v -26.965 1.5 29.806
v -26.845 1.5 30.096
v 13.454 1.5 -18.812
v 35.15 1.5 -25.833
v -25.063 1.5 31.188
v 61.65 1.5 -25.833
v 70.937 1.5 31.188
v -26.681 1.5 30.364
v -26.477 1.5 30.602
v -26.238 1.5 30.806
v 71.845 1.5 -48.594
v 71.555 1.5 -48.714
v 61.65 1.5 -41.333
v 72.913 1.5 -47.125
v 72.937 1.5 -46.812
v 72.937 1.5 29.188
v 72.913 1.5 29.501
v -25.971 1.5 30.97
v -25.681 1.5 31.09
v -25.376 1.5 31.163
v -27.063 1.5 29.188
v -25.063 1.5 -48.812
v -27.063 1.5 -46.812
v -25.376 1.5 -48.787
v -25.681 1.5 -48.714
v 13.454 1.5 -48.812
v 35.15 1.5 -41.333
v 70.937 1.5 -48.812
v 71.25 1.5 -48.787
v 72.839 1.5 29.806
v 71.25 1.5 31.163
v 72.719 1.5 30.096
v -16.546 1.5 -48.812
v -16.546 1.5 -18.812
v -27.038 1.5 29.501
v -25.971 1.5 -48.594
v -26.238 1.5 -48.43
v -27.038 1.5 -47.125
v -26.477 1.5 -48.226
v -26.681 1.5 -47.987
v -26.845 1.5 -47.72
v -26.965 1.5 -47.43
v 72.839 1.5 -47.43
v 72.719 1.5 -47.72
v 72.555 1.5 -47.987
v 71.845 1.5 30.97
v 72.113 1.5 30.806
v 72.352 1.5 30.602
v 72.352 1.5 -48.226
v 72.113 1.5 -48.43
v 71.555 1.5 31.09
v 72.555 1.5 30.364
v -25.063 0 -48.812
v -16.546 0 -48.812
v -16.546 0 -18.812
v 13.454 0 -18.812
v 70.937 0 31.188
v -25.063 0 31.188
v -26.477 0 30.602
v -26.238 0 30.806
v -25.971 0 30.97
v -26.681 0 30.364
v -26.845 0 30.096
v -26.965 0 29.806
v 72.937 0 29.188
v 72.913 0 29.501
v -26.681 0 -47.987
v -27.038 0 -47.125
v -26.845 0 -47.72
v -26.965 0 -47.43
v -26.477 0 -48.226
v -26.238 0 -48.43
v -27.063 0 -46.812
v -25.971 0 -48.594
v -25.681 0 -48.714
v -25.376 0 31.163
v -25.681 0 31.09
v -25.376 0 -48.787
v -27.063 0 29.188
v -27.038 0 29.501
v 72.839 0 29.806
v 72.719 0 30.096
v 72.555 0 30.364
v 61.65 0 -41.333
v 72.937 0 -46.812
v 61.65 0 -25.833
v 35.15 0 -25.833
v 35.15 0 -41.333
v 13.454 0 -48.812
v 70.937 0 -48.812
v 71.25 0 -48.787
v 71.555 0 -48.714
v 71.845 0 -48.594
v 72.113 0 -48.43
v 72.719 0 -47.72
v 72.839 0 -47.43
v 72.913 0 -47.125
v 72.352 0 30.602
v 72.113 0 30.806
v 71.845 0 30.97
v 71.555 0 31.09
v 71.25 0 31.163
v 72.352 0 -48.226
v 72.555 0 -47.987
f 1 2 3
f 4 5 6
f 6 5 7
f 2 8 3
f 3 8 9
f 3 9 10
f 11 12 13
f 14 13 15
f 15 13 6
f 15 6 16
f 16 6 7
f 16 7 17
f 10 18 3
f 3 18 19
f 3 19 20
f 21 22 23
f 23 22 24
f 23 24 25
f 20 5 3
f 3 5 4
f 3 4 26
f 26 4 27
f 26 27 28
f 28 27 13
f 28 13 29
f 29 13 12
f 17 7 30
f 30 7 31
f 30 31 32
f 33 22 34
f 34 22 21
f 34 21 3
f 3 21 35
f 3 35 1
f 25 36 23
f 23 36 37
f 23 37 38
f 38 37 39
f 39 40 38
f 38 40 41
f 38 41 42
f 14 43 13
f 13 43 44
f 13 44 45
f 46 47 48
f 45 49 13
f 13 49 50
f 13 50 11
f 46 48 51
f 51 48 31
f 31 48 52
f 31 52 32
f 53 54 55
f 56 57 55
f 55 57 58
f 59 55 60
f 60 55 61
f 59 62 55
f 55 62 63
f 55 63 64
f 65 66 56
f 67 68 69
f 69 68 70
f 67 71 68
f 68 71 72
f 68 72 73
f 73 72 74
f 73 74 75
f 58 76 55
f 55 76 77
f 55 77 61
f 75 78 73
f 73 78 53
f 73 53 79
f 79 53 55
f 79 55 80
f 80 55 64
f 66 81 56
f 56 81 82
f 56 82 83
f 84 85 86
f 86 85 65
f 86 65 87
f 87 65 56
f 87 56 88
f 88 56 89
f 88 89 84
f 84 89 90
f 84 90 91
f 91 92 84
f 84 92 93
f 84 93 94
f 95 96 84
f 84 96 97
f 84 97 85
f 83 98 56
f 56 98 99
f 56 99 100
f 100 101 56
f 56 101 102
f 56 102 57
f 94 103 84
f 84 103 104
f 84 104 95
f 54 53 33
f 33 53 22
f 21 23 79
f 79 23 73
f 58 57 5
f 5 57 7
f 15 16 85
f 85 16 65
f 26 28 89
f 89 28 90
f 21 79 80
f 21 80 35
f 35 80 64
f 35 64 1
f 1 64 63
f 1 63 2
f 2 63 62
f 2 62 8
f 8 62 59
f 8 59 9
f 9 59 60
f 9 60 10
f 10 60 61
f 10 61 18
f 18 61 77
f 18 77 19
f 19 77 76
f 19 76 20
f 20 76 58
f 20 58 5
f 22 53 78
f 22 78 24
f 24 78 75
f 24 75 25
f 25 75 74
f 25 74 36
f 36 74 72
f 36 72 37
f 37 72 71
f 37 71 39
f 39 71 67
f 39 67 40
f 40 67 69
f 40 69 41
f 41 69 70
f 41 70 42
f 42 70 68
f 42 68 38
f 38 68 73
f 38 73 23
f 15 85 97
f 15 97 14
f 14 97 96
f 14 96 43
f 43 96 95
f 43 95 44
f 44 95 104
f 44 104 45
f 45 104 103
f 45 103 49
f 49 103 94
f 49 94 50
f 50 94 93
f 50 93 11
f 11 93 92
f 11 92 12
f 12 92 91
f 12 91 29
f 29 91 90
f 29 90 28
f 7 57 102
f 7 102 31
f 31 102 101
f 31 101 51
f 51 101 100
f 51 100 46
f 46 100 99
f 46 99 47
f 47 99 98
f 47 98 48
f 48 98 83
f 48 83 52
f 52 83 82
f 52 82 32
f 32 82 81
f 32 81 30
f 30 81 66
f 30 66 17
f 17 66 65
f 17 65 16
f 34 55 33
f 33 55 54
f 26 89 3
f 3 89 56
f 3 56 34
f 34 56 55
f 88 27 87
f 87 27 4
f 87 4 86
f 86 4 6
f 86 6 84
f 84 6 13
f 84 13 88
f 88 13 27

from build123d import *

# Parameters (mm, degrees)
SKETCH1_W           = 100
SKETCH1_H           = 80
BOSS_EXTRUDE1_DEPTH = 1.5
FILLET1_R           = 2
SKETCH7_W           = 30
SKETCH7_H           = 30
BUKAAN_DEPTH        = 7.5
SKETCH8_W           = 26.5
SKETCH8_H           = 15.5
CUT_EXTRUDE6_DEPTH  = 10.5


with BuildPart() as part:
    # Sketch1 → Boss-Extrude1 (new body)
    with BuildSketch(Plane(origin=(0, 0, 0), x_dir=(1, 0, 0), z_dir=(0, 1, 0))):
        with Locations((22.937293729, 8.811881188)):
            Rectangle(SKETCH1_W, SKETCH1_H)
    extrude(amount=BOSS_EXTRUDE1_DEPTH)

    # Fillet1
    fillet1_edges = [part.edges().sort_by_distance(p)[0] for p in [
        (-27.062706271, 0.75, -48.811881188),
        (72.937293729, 0.75, -48.811881188),
        (72.937293729, 0.75, 31.188118812),
        (-27.062706271, 0.75, 31.188118812),
    ]]
    fillet(fillet1_edges, radius=FILLET1_R)

    # Sketch7 → bukaan (cut)
    with BuildSketch(Plane(origin=(0, 1.5, 0), x_dir=(1, 0, 0), z_dir=(0, 1, 0))):
        with Locations((-1.545768262, 33.811881188)):
            Rectangle(SKETCH7_W, SKETCH7_H)
    extrude(amount=-BUKAAN_DEPTH, mode=Mode.SUBTRACT)

    # Sketch8 → Cut-Extrude6 (cut)
    with BuildSketch(Plane(origin=(0, 0, 0), x_dir=(1, 0, 0), z_dir=(0, 1, 0))):
        with Locations((48.400499743, 33.583205548)):
            Rectangle(SKETCH8_W, SKETCH8_H)
    extrude(amount=CUT_EXTRUDE6_DEPTH, mode=Mode.SUBTRACT)


solid = part.part
